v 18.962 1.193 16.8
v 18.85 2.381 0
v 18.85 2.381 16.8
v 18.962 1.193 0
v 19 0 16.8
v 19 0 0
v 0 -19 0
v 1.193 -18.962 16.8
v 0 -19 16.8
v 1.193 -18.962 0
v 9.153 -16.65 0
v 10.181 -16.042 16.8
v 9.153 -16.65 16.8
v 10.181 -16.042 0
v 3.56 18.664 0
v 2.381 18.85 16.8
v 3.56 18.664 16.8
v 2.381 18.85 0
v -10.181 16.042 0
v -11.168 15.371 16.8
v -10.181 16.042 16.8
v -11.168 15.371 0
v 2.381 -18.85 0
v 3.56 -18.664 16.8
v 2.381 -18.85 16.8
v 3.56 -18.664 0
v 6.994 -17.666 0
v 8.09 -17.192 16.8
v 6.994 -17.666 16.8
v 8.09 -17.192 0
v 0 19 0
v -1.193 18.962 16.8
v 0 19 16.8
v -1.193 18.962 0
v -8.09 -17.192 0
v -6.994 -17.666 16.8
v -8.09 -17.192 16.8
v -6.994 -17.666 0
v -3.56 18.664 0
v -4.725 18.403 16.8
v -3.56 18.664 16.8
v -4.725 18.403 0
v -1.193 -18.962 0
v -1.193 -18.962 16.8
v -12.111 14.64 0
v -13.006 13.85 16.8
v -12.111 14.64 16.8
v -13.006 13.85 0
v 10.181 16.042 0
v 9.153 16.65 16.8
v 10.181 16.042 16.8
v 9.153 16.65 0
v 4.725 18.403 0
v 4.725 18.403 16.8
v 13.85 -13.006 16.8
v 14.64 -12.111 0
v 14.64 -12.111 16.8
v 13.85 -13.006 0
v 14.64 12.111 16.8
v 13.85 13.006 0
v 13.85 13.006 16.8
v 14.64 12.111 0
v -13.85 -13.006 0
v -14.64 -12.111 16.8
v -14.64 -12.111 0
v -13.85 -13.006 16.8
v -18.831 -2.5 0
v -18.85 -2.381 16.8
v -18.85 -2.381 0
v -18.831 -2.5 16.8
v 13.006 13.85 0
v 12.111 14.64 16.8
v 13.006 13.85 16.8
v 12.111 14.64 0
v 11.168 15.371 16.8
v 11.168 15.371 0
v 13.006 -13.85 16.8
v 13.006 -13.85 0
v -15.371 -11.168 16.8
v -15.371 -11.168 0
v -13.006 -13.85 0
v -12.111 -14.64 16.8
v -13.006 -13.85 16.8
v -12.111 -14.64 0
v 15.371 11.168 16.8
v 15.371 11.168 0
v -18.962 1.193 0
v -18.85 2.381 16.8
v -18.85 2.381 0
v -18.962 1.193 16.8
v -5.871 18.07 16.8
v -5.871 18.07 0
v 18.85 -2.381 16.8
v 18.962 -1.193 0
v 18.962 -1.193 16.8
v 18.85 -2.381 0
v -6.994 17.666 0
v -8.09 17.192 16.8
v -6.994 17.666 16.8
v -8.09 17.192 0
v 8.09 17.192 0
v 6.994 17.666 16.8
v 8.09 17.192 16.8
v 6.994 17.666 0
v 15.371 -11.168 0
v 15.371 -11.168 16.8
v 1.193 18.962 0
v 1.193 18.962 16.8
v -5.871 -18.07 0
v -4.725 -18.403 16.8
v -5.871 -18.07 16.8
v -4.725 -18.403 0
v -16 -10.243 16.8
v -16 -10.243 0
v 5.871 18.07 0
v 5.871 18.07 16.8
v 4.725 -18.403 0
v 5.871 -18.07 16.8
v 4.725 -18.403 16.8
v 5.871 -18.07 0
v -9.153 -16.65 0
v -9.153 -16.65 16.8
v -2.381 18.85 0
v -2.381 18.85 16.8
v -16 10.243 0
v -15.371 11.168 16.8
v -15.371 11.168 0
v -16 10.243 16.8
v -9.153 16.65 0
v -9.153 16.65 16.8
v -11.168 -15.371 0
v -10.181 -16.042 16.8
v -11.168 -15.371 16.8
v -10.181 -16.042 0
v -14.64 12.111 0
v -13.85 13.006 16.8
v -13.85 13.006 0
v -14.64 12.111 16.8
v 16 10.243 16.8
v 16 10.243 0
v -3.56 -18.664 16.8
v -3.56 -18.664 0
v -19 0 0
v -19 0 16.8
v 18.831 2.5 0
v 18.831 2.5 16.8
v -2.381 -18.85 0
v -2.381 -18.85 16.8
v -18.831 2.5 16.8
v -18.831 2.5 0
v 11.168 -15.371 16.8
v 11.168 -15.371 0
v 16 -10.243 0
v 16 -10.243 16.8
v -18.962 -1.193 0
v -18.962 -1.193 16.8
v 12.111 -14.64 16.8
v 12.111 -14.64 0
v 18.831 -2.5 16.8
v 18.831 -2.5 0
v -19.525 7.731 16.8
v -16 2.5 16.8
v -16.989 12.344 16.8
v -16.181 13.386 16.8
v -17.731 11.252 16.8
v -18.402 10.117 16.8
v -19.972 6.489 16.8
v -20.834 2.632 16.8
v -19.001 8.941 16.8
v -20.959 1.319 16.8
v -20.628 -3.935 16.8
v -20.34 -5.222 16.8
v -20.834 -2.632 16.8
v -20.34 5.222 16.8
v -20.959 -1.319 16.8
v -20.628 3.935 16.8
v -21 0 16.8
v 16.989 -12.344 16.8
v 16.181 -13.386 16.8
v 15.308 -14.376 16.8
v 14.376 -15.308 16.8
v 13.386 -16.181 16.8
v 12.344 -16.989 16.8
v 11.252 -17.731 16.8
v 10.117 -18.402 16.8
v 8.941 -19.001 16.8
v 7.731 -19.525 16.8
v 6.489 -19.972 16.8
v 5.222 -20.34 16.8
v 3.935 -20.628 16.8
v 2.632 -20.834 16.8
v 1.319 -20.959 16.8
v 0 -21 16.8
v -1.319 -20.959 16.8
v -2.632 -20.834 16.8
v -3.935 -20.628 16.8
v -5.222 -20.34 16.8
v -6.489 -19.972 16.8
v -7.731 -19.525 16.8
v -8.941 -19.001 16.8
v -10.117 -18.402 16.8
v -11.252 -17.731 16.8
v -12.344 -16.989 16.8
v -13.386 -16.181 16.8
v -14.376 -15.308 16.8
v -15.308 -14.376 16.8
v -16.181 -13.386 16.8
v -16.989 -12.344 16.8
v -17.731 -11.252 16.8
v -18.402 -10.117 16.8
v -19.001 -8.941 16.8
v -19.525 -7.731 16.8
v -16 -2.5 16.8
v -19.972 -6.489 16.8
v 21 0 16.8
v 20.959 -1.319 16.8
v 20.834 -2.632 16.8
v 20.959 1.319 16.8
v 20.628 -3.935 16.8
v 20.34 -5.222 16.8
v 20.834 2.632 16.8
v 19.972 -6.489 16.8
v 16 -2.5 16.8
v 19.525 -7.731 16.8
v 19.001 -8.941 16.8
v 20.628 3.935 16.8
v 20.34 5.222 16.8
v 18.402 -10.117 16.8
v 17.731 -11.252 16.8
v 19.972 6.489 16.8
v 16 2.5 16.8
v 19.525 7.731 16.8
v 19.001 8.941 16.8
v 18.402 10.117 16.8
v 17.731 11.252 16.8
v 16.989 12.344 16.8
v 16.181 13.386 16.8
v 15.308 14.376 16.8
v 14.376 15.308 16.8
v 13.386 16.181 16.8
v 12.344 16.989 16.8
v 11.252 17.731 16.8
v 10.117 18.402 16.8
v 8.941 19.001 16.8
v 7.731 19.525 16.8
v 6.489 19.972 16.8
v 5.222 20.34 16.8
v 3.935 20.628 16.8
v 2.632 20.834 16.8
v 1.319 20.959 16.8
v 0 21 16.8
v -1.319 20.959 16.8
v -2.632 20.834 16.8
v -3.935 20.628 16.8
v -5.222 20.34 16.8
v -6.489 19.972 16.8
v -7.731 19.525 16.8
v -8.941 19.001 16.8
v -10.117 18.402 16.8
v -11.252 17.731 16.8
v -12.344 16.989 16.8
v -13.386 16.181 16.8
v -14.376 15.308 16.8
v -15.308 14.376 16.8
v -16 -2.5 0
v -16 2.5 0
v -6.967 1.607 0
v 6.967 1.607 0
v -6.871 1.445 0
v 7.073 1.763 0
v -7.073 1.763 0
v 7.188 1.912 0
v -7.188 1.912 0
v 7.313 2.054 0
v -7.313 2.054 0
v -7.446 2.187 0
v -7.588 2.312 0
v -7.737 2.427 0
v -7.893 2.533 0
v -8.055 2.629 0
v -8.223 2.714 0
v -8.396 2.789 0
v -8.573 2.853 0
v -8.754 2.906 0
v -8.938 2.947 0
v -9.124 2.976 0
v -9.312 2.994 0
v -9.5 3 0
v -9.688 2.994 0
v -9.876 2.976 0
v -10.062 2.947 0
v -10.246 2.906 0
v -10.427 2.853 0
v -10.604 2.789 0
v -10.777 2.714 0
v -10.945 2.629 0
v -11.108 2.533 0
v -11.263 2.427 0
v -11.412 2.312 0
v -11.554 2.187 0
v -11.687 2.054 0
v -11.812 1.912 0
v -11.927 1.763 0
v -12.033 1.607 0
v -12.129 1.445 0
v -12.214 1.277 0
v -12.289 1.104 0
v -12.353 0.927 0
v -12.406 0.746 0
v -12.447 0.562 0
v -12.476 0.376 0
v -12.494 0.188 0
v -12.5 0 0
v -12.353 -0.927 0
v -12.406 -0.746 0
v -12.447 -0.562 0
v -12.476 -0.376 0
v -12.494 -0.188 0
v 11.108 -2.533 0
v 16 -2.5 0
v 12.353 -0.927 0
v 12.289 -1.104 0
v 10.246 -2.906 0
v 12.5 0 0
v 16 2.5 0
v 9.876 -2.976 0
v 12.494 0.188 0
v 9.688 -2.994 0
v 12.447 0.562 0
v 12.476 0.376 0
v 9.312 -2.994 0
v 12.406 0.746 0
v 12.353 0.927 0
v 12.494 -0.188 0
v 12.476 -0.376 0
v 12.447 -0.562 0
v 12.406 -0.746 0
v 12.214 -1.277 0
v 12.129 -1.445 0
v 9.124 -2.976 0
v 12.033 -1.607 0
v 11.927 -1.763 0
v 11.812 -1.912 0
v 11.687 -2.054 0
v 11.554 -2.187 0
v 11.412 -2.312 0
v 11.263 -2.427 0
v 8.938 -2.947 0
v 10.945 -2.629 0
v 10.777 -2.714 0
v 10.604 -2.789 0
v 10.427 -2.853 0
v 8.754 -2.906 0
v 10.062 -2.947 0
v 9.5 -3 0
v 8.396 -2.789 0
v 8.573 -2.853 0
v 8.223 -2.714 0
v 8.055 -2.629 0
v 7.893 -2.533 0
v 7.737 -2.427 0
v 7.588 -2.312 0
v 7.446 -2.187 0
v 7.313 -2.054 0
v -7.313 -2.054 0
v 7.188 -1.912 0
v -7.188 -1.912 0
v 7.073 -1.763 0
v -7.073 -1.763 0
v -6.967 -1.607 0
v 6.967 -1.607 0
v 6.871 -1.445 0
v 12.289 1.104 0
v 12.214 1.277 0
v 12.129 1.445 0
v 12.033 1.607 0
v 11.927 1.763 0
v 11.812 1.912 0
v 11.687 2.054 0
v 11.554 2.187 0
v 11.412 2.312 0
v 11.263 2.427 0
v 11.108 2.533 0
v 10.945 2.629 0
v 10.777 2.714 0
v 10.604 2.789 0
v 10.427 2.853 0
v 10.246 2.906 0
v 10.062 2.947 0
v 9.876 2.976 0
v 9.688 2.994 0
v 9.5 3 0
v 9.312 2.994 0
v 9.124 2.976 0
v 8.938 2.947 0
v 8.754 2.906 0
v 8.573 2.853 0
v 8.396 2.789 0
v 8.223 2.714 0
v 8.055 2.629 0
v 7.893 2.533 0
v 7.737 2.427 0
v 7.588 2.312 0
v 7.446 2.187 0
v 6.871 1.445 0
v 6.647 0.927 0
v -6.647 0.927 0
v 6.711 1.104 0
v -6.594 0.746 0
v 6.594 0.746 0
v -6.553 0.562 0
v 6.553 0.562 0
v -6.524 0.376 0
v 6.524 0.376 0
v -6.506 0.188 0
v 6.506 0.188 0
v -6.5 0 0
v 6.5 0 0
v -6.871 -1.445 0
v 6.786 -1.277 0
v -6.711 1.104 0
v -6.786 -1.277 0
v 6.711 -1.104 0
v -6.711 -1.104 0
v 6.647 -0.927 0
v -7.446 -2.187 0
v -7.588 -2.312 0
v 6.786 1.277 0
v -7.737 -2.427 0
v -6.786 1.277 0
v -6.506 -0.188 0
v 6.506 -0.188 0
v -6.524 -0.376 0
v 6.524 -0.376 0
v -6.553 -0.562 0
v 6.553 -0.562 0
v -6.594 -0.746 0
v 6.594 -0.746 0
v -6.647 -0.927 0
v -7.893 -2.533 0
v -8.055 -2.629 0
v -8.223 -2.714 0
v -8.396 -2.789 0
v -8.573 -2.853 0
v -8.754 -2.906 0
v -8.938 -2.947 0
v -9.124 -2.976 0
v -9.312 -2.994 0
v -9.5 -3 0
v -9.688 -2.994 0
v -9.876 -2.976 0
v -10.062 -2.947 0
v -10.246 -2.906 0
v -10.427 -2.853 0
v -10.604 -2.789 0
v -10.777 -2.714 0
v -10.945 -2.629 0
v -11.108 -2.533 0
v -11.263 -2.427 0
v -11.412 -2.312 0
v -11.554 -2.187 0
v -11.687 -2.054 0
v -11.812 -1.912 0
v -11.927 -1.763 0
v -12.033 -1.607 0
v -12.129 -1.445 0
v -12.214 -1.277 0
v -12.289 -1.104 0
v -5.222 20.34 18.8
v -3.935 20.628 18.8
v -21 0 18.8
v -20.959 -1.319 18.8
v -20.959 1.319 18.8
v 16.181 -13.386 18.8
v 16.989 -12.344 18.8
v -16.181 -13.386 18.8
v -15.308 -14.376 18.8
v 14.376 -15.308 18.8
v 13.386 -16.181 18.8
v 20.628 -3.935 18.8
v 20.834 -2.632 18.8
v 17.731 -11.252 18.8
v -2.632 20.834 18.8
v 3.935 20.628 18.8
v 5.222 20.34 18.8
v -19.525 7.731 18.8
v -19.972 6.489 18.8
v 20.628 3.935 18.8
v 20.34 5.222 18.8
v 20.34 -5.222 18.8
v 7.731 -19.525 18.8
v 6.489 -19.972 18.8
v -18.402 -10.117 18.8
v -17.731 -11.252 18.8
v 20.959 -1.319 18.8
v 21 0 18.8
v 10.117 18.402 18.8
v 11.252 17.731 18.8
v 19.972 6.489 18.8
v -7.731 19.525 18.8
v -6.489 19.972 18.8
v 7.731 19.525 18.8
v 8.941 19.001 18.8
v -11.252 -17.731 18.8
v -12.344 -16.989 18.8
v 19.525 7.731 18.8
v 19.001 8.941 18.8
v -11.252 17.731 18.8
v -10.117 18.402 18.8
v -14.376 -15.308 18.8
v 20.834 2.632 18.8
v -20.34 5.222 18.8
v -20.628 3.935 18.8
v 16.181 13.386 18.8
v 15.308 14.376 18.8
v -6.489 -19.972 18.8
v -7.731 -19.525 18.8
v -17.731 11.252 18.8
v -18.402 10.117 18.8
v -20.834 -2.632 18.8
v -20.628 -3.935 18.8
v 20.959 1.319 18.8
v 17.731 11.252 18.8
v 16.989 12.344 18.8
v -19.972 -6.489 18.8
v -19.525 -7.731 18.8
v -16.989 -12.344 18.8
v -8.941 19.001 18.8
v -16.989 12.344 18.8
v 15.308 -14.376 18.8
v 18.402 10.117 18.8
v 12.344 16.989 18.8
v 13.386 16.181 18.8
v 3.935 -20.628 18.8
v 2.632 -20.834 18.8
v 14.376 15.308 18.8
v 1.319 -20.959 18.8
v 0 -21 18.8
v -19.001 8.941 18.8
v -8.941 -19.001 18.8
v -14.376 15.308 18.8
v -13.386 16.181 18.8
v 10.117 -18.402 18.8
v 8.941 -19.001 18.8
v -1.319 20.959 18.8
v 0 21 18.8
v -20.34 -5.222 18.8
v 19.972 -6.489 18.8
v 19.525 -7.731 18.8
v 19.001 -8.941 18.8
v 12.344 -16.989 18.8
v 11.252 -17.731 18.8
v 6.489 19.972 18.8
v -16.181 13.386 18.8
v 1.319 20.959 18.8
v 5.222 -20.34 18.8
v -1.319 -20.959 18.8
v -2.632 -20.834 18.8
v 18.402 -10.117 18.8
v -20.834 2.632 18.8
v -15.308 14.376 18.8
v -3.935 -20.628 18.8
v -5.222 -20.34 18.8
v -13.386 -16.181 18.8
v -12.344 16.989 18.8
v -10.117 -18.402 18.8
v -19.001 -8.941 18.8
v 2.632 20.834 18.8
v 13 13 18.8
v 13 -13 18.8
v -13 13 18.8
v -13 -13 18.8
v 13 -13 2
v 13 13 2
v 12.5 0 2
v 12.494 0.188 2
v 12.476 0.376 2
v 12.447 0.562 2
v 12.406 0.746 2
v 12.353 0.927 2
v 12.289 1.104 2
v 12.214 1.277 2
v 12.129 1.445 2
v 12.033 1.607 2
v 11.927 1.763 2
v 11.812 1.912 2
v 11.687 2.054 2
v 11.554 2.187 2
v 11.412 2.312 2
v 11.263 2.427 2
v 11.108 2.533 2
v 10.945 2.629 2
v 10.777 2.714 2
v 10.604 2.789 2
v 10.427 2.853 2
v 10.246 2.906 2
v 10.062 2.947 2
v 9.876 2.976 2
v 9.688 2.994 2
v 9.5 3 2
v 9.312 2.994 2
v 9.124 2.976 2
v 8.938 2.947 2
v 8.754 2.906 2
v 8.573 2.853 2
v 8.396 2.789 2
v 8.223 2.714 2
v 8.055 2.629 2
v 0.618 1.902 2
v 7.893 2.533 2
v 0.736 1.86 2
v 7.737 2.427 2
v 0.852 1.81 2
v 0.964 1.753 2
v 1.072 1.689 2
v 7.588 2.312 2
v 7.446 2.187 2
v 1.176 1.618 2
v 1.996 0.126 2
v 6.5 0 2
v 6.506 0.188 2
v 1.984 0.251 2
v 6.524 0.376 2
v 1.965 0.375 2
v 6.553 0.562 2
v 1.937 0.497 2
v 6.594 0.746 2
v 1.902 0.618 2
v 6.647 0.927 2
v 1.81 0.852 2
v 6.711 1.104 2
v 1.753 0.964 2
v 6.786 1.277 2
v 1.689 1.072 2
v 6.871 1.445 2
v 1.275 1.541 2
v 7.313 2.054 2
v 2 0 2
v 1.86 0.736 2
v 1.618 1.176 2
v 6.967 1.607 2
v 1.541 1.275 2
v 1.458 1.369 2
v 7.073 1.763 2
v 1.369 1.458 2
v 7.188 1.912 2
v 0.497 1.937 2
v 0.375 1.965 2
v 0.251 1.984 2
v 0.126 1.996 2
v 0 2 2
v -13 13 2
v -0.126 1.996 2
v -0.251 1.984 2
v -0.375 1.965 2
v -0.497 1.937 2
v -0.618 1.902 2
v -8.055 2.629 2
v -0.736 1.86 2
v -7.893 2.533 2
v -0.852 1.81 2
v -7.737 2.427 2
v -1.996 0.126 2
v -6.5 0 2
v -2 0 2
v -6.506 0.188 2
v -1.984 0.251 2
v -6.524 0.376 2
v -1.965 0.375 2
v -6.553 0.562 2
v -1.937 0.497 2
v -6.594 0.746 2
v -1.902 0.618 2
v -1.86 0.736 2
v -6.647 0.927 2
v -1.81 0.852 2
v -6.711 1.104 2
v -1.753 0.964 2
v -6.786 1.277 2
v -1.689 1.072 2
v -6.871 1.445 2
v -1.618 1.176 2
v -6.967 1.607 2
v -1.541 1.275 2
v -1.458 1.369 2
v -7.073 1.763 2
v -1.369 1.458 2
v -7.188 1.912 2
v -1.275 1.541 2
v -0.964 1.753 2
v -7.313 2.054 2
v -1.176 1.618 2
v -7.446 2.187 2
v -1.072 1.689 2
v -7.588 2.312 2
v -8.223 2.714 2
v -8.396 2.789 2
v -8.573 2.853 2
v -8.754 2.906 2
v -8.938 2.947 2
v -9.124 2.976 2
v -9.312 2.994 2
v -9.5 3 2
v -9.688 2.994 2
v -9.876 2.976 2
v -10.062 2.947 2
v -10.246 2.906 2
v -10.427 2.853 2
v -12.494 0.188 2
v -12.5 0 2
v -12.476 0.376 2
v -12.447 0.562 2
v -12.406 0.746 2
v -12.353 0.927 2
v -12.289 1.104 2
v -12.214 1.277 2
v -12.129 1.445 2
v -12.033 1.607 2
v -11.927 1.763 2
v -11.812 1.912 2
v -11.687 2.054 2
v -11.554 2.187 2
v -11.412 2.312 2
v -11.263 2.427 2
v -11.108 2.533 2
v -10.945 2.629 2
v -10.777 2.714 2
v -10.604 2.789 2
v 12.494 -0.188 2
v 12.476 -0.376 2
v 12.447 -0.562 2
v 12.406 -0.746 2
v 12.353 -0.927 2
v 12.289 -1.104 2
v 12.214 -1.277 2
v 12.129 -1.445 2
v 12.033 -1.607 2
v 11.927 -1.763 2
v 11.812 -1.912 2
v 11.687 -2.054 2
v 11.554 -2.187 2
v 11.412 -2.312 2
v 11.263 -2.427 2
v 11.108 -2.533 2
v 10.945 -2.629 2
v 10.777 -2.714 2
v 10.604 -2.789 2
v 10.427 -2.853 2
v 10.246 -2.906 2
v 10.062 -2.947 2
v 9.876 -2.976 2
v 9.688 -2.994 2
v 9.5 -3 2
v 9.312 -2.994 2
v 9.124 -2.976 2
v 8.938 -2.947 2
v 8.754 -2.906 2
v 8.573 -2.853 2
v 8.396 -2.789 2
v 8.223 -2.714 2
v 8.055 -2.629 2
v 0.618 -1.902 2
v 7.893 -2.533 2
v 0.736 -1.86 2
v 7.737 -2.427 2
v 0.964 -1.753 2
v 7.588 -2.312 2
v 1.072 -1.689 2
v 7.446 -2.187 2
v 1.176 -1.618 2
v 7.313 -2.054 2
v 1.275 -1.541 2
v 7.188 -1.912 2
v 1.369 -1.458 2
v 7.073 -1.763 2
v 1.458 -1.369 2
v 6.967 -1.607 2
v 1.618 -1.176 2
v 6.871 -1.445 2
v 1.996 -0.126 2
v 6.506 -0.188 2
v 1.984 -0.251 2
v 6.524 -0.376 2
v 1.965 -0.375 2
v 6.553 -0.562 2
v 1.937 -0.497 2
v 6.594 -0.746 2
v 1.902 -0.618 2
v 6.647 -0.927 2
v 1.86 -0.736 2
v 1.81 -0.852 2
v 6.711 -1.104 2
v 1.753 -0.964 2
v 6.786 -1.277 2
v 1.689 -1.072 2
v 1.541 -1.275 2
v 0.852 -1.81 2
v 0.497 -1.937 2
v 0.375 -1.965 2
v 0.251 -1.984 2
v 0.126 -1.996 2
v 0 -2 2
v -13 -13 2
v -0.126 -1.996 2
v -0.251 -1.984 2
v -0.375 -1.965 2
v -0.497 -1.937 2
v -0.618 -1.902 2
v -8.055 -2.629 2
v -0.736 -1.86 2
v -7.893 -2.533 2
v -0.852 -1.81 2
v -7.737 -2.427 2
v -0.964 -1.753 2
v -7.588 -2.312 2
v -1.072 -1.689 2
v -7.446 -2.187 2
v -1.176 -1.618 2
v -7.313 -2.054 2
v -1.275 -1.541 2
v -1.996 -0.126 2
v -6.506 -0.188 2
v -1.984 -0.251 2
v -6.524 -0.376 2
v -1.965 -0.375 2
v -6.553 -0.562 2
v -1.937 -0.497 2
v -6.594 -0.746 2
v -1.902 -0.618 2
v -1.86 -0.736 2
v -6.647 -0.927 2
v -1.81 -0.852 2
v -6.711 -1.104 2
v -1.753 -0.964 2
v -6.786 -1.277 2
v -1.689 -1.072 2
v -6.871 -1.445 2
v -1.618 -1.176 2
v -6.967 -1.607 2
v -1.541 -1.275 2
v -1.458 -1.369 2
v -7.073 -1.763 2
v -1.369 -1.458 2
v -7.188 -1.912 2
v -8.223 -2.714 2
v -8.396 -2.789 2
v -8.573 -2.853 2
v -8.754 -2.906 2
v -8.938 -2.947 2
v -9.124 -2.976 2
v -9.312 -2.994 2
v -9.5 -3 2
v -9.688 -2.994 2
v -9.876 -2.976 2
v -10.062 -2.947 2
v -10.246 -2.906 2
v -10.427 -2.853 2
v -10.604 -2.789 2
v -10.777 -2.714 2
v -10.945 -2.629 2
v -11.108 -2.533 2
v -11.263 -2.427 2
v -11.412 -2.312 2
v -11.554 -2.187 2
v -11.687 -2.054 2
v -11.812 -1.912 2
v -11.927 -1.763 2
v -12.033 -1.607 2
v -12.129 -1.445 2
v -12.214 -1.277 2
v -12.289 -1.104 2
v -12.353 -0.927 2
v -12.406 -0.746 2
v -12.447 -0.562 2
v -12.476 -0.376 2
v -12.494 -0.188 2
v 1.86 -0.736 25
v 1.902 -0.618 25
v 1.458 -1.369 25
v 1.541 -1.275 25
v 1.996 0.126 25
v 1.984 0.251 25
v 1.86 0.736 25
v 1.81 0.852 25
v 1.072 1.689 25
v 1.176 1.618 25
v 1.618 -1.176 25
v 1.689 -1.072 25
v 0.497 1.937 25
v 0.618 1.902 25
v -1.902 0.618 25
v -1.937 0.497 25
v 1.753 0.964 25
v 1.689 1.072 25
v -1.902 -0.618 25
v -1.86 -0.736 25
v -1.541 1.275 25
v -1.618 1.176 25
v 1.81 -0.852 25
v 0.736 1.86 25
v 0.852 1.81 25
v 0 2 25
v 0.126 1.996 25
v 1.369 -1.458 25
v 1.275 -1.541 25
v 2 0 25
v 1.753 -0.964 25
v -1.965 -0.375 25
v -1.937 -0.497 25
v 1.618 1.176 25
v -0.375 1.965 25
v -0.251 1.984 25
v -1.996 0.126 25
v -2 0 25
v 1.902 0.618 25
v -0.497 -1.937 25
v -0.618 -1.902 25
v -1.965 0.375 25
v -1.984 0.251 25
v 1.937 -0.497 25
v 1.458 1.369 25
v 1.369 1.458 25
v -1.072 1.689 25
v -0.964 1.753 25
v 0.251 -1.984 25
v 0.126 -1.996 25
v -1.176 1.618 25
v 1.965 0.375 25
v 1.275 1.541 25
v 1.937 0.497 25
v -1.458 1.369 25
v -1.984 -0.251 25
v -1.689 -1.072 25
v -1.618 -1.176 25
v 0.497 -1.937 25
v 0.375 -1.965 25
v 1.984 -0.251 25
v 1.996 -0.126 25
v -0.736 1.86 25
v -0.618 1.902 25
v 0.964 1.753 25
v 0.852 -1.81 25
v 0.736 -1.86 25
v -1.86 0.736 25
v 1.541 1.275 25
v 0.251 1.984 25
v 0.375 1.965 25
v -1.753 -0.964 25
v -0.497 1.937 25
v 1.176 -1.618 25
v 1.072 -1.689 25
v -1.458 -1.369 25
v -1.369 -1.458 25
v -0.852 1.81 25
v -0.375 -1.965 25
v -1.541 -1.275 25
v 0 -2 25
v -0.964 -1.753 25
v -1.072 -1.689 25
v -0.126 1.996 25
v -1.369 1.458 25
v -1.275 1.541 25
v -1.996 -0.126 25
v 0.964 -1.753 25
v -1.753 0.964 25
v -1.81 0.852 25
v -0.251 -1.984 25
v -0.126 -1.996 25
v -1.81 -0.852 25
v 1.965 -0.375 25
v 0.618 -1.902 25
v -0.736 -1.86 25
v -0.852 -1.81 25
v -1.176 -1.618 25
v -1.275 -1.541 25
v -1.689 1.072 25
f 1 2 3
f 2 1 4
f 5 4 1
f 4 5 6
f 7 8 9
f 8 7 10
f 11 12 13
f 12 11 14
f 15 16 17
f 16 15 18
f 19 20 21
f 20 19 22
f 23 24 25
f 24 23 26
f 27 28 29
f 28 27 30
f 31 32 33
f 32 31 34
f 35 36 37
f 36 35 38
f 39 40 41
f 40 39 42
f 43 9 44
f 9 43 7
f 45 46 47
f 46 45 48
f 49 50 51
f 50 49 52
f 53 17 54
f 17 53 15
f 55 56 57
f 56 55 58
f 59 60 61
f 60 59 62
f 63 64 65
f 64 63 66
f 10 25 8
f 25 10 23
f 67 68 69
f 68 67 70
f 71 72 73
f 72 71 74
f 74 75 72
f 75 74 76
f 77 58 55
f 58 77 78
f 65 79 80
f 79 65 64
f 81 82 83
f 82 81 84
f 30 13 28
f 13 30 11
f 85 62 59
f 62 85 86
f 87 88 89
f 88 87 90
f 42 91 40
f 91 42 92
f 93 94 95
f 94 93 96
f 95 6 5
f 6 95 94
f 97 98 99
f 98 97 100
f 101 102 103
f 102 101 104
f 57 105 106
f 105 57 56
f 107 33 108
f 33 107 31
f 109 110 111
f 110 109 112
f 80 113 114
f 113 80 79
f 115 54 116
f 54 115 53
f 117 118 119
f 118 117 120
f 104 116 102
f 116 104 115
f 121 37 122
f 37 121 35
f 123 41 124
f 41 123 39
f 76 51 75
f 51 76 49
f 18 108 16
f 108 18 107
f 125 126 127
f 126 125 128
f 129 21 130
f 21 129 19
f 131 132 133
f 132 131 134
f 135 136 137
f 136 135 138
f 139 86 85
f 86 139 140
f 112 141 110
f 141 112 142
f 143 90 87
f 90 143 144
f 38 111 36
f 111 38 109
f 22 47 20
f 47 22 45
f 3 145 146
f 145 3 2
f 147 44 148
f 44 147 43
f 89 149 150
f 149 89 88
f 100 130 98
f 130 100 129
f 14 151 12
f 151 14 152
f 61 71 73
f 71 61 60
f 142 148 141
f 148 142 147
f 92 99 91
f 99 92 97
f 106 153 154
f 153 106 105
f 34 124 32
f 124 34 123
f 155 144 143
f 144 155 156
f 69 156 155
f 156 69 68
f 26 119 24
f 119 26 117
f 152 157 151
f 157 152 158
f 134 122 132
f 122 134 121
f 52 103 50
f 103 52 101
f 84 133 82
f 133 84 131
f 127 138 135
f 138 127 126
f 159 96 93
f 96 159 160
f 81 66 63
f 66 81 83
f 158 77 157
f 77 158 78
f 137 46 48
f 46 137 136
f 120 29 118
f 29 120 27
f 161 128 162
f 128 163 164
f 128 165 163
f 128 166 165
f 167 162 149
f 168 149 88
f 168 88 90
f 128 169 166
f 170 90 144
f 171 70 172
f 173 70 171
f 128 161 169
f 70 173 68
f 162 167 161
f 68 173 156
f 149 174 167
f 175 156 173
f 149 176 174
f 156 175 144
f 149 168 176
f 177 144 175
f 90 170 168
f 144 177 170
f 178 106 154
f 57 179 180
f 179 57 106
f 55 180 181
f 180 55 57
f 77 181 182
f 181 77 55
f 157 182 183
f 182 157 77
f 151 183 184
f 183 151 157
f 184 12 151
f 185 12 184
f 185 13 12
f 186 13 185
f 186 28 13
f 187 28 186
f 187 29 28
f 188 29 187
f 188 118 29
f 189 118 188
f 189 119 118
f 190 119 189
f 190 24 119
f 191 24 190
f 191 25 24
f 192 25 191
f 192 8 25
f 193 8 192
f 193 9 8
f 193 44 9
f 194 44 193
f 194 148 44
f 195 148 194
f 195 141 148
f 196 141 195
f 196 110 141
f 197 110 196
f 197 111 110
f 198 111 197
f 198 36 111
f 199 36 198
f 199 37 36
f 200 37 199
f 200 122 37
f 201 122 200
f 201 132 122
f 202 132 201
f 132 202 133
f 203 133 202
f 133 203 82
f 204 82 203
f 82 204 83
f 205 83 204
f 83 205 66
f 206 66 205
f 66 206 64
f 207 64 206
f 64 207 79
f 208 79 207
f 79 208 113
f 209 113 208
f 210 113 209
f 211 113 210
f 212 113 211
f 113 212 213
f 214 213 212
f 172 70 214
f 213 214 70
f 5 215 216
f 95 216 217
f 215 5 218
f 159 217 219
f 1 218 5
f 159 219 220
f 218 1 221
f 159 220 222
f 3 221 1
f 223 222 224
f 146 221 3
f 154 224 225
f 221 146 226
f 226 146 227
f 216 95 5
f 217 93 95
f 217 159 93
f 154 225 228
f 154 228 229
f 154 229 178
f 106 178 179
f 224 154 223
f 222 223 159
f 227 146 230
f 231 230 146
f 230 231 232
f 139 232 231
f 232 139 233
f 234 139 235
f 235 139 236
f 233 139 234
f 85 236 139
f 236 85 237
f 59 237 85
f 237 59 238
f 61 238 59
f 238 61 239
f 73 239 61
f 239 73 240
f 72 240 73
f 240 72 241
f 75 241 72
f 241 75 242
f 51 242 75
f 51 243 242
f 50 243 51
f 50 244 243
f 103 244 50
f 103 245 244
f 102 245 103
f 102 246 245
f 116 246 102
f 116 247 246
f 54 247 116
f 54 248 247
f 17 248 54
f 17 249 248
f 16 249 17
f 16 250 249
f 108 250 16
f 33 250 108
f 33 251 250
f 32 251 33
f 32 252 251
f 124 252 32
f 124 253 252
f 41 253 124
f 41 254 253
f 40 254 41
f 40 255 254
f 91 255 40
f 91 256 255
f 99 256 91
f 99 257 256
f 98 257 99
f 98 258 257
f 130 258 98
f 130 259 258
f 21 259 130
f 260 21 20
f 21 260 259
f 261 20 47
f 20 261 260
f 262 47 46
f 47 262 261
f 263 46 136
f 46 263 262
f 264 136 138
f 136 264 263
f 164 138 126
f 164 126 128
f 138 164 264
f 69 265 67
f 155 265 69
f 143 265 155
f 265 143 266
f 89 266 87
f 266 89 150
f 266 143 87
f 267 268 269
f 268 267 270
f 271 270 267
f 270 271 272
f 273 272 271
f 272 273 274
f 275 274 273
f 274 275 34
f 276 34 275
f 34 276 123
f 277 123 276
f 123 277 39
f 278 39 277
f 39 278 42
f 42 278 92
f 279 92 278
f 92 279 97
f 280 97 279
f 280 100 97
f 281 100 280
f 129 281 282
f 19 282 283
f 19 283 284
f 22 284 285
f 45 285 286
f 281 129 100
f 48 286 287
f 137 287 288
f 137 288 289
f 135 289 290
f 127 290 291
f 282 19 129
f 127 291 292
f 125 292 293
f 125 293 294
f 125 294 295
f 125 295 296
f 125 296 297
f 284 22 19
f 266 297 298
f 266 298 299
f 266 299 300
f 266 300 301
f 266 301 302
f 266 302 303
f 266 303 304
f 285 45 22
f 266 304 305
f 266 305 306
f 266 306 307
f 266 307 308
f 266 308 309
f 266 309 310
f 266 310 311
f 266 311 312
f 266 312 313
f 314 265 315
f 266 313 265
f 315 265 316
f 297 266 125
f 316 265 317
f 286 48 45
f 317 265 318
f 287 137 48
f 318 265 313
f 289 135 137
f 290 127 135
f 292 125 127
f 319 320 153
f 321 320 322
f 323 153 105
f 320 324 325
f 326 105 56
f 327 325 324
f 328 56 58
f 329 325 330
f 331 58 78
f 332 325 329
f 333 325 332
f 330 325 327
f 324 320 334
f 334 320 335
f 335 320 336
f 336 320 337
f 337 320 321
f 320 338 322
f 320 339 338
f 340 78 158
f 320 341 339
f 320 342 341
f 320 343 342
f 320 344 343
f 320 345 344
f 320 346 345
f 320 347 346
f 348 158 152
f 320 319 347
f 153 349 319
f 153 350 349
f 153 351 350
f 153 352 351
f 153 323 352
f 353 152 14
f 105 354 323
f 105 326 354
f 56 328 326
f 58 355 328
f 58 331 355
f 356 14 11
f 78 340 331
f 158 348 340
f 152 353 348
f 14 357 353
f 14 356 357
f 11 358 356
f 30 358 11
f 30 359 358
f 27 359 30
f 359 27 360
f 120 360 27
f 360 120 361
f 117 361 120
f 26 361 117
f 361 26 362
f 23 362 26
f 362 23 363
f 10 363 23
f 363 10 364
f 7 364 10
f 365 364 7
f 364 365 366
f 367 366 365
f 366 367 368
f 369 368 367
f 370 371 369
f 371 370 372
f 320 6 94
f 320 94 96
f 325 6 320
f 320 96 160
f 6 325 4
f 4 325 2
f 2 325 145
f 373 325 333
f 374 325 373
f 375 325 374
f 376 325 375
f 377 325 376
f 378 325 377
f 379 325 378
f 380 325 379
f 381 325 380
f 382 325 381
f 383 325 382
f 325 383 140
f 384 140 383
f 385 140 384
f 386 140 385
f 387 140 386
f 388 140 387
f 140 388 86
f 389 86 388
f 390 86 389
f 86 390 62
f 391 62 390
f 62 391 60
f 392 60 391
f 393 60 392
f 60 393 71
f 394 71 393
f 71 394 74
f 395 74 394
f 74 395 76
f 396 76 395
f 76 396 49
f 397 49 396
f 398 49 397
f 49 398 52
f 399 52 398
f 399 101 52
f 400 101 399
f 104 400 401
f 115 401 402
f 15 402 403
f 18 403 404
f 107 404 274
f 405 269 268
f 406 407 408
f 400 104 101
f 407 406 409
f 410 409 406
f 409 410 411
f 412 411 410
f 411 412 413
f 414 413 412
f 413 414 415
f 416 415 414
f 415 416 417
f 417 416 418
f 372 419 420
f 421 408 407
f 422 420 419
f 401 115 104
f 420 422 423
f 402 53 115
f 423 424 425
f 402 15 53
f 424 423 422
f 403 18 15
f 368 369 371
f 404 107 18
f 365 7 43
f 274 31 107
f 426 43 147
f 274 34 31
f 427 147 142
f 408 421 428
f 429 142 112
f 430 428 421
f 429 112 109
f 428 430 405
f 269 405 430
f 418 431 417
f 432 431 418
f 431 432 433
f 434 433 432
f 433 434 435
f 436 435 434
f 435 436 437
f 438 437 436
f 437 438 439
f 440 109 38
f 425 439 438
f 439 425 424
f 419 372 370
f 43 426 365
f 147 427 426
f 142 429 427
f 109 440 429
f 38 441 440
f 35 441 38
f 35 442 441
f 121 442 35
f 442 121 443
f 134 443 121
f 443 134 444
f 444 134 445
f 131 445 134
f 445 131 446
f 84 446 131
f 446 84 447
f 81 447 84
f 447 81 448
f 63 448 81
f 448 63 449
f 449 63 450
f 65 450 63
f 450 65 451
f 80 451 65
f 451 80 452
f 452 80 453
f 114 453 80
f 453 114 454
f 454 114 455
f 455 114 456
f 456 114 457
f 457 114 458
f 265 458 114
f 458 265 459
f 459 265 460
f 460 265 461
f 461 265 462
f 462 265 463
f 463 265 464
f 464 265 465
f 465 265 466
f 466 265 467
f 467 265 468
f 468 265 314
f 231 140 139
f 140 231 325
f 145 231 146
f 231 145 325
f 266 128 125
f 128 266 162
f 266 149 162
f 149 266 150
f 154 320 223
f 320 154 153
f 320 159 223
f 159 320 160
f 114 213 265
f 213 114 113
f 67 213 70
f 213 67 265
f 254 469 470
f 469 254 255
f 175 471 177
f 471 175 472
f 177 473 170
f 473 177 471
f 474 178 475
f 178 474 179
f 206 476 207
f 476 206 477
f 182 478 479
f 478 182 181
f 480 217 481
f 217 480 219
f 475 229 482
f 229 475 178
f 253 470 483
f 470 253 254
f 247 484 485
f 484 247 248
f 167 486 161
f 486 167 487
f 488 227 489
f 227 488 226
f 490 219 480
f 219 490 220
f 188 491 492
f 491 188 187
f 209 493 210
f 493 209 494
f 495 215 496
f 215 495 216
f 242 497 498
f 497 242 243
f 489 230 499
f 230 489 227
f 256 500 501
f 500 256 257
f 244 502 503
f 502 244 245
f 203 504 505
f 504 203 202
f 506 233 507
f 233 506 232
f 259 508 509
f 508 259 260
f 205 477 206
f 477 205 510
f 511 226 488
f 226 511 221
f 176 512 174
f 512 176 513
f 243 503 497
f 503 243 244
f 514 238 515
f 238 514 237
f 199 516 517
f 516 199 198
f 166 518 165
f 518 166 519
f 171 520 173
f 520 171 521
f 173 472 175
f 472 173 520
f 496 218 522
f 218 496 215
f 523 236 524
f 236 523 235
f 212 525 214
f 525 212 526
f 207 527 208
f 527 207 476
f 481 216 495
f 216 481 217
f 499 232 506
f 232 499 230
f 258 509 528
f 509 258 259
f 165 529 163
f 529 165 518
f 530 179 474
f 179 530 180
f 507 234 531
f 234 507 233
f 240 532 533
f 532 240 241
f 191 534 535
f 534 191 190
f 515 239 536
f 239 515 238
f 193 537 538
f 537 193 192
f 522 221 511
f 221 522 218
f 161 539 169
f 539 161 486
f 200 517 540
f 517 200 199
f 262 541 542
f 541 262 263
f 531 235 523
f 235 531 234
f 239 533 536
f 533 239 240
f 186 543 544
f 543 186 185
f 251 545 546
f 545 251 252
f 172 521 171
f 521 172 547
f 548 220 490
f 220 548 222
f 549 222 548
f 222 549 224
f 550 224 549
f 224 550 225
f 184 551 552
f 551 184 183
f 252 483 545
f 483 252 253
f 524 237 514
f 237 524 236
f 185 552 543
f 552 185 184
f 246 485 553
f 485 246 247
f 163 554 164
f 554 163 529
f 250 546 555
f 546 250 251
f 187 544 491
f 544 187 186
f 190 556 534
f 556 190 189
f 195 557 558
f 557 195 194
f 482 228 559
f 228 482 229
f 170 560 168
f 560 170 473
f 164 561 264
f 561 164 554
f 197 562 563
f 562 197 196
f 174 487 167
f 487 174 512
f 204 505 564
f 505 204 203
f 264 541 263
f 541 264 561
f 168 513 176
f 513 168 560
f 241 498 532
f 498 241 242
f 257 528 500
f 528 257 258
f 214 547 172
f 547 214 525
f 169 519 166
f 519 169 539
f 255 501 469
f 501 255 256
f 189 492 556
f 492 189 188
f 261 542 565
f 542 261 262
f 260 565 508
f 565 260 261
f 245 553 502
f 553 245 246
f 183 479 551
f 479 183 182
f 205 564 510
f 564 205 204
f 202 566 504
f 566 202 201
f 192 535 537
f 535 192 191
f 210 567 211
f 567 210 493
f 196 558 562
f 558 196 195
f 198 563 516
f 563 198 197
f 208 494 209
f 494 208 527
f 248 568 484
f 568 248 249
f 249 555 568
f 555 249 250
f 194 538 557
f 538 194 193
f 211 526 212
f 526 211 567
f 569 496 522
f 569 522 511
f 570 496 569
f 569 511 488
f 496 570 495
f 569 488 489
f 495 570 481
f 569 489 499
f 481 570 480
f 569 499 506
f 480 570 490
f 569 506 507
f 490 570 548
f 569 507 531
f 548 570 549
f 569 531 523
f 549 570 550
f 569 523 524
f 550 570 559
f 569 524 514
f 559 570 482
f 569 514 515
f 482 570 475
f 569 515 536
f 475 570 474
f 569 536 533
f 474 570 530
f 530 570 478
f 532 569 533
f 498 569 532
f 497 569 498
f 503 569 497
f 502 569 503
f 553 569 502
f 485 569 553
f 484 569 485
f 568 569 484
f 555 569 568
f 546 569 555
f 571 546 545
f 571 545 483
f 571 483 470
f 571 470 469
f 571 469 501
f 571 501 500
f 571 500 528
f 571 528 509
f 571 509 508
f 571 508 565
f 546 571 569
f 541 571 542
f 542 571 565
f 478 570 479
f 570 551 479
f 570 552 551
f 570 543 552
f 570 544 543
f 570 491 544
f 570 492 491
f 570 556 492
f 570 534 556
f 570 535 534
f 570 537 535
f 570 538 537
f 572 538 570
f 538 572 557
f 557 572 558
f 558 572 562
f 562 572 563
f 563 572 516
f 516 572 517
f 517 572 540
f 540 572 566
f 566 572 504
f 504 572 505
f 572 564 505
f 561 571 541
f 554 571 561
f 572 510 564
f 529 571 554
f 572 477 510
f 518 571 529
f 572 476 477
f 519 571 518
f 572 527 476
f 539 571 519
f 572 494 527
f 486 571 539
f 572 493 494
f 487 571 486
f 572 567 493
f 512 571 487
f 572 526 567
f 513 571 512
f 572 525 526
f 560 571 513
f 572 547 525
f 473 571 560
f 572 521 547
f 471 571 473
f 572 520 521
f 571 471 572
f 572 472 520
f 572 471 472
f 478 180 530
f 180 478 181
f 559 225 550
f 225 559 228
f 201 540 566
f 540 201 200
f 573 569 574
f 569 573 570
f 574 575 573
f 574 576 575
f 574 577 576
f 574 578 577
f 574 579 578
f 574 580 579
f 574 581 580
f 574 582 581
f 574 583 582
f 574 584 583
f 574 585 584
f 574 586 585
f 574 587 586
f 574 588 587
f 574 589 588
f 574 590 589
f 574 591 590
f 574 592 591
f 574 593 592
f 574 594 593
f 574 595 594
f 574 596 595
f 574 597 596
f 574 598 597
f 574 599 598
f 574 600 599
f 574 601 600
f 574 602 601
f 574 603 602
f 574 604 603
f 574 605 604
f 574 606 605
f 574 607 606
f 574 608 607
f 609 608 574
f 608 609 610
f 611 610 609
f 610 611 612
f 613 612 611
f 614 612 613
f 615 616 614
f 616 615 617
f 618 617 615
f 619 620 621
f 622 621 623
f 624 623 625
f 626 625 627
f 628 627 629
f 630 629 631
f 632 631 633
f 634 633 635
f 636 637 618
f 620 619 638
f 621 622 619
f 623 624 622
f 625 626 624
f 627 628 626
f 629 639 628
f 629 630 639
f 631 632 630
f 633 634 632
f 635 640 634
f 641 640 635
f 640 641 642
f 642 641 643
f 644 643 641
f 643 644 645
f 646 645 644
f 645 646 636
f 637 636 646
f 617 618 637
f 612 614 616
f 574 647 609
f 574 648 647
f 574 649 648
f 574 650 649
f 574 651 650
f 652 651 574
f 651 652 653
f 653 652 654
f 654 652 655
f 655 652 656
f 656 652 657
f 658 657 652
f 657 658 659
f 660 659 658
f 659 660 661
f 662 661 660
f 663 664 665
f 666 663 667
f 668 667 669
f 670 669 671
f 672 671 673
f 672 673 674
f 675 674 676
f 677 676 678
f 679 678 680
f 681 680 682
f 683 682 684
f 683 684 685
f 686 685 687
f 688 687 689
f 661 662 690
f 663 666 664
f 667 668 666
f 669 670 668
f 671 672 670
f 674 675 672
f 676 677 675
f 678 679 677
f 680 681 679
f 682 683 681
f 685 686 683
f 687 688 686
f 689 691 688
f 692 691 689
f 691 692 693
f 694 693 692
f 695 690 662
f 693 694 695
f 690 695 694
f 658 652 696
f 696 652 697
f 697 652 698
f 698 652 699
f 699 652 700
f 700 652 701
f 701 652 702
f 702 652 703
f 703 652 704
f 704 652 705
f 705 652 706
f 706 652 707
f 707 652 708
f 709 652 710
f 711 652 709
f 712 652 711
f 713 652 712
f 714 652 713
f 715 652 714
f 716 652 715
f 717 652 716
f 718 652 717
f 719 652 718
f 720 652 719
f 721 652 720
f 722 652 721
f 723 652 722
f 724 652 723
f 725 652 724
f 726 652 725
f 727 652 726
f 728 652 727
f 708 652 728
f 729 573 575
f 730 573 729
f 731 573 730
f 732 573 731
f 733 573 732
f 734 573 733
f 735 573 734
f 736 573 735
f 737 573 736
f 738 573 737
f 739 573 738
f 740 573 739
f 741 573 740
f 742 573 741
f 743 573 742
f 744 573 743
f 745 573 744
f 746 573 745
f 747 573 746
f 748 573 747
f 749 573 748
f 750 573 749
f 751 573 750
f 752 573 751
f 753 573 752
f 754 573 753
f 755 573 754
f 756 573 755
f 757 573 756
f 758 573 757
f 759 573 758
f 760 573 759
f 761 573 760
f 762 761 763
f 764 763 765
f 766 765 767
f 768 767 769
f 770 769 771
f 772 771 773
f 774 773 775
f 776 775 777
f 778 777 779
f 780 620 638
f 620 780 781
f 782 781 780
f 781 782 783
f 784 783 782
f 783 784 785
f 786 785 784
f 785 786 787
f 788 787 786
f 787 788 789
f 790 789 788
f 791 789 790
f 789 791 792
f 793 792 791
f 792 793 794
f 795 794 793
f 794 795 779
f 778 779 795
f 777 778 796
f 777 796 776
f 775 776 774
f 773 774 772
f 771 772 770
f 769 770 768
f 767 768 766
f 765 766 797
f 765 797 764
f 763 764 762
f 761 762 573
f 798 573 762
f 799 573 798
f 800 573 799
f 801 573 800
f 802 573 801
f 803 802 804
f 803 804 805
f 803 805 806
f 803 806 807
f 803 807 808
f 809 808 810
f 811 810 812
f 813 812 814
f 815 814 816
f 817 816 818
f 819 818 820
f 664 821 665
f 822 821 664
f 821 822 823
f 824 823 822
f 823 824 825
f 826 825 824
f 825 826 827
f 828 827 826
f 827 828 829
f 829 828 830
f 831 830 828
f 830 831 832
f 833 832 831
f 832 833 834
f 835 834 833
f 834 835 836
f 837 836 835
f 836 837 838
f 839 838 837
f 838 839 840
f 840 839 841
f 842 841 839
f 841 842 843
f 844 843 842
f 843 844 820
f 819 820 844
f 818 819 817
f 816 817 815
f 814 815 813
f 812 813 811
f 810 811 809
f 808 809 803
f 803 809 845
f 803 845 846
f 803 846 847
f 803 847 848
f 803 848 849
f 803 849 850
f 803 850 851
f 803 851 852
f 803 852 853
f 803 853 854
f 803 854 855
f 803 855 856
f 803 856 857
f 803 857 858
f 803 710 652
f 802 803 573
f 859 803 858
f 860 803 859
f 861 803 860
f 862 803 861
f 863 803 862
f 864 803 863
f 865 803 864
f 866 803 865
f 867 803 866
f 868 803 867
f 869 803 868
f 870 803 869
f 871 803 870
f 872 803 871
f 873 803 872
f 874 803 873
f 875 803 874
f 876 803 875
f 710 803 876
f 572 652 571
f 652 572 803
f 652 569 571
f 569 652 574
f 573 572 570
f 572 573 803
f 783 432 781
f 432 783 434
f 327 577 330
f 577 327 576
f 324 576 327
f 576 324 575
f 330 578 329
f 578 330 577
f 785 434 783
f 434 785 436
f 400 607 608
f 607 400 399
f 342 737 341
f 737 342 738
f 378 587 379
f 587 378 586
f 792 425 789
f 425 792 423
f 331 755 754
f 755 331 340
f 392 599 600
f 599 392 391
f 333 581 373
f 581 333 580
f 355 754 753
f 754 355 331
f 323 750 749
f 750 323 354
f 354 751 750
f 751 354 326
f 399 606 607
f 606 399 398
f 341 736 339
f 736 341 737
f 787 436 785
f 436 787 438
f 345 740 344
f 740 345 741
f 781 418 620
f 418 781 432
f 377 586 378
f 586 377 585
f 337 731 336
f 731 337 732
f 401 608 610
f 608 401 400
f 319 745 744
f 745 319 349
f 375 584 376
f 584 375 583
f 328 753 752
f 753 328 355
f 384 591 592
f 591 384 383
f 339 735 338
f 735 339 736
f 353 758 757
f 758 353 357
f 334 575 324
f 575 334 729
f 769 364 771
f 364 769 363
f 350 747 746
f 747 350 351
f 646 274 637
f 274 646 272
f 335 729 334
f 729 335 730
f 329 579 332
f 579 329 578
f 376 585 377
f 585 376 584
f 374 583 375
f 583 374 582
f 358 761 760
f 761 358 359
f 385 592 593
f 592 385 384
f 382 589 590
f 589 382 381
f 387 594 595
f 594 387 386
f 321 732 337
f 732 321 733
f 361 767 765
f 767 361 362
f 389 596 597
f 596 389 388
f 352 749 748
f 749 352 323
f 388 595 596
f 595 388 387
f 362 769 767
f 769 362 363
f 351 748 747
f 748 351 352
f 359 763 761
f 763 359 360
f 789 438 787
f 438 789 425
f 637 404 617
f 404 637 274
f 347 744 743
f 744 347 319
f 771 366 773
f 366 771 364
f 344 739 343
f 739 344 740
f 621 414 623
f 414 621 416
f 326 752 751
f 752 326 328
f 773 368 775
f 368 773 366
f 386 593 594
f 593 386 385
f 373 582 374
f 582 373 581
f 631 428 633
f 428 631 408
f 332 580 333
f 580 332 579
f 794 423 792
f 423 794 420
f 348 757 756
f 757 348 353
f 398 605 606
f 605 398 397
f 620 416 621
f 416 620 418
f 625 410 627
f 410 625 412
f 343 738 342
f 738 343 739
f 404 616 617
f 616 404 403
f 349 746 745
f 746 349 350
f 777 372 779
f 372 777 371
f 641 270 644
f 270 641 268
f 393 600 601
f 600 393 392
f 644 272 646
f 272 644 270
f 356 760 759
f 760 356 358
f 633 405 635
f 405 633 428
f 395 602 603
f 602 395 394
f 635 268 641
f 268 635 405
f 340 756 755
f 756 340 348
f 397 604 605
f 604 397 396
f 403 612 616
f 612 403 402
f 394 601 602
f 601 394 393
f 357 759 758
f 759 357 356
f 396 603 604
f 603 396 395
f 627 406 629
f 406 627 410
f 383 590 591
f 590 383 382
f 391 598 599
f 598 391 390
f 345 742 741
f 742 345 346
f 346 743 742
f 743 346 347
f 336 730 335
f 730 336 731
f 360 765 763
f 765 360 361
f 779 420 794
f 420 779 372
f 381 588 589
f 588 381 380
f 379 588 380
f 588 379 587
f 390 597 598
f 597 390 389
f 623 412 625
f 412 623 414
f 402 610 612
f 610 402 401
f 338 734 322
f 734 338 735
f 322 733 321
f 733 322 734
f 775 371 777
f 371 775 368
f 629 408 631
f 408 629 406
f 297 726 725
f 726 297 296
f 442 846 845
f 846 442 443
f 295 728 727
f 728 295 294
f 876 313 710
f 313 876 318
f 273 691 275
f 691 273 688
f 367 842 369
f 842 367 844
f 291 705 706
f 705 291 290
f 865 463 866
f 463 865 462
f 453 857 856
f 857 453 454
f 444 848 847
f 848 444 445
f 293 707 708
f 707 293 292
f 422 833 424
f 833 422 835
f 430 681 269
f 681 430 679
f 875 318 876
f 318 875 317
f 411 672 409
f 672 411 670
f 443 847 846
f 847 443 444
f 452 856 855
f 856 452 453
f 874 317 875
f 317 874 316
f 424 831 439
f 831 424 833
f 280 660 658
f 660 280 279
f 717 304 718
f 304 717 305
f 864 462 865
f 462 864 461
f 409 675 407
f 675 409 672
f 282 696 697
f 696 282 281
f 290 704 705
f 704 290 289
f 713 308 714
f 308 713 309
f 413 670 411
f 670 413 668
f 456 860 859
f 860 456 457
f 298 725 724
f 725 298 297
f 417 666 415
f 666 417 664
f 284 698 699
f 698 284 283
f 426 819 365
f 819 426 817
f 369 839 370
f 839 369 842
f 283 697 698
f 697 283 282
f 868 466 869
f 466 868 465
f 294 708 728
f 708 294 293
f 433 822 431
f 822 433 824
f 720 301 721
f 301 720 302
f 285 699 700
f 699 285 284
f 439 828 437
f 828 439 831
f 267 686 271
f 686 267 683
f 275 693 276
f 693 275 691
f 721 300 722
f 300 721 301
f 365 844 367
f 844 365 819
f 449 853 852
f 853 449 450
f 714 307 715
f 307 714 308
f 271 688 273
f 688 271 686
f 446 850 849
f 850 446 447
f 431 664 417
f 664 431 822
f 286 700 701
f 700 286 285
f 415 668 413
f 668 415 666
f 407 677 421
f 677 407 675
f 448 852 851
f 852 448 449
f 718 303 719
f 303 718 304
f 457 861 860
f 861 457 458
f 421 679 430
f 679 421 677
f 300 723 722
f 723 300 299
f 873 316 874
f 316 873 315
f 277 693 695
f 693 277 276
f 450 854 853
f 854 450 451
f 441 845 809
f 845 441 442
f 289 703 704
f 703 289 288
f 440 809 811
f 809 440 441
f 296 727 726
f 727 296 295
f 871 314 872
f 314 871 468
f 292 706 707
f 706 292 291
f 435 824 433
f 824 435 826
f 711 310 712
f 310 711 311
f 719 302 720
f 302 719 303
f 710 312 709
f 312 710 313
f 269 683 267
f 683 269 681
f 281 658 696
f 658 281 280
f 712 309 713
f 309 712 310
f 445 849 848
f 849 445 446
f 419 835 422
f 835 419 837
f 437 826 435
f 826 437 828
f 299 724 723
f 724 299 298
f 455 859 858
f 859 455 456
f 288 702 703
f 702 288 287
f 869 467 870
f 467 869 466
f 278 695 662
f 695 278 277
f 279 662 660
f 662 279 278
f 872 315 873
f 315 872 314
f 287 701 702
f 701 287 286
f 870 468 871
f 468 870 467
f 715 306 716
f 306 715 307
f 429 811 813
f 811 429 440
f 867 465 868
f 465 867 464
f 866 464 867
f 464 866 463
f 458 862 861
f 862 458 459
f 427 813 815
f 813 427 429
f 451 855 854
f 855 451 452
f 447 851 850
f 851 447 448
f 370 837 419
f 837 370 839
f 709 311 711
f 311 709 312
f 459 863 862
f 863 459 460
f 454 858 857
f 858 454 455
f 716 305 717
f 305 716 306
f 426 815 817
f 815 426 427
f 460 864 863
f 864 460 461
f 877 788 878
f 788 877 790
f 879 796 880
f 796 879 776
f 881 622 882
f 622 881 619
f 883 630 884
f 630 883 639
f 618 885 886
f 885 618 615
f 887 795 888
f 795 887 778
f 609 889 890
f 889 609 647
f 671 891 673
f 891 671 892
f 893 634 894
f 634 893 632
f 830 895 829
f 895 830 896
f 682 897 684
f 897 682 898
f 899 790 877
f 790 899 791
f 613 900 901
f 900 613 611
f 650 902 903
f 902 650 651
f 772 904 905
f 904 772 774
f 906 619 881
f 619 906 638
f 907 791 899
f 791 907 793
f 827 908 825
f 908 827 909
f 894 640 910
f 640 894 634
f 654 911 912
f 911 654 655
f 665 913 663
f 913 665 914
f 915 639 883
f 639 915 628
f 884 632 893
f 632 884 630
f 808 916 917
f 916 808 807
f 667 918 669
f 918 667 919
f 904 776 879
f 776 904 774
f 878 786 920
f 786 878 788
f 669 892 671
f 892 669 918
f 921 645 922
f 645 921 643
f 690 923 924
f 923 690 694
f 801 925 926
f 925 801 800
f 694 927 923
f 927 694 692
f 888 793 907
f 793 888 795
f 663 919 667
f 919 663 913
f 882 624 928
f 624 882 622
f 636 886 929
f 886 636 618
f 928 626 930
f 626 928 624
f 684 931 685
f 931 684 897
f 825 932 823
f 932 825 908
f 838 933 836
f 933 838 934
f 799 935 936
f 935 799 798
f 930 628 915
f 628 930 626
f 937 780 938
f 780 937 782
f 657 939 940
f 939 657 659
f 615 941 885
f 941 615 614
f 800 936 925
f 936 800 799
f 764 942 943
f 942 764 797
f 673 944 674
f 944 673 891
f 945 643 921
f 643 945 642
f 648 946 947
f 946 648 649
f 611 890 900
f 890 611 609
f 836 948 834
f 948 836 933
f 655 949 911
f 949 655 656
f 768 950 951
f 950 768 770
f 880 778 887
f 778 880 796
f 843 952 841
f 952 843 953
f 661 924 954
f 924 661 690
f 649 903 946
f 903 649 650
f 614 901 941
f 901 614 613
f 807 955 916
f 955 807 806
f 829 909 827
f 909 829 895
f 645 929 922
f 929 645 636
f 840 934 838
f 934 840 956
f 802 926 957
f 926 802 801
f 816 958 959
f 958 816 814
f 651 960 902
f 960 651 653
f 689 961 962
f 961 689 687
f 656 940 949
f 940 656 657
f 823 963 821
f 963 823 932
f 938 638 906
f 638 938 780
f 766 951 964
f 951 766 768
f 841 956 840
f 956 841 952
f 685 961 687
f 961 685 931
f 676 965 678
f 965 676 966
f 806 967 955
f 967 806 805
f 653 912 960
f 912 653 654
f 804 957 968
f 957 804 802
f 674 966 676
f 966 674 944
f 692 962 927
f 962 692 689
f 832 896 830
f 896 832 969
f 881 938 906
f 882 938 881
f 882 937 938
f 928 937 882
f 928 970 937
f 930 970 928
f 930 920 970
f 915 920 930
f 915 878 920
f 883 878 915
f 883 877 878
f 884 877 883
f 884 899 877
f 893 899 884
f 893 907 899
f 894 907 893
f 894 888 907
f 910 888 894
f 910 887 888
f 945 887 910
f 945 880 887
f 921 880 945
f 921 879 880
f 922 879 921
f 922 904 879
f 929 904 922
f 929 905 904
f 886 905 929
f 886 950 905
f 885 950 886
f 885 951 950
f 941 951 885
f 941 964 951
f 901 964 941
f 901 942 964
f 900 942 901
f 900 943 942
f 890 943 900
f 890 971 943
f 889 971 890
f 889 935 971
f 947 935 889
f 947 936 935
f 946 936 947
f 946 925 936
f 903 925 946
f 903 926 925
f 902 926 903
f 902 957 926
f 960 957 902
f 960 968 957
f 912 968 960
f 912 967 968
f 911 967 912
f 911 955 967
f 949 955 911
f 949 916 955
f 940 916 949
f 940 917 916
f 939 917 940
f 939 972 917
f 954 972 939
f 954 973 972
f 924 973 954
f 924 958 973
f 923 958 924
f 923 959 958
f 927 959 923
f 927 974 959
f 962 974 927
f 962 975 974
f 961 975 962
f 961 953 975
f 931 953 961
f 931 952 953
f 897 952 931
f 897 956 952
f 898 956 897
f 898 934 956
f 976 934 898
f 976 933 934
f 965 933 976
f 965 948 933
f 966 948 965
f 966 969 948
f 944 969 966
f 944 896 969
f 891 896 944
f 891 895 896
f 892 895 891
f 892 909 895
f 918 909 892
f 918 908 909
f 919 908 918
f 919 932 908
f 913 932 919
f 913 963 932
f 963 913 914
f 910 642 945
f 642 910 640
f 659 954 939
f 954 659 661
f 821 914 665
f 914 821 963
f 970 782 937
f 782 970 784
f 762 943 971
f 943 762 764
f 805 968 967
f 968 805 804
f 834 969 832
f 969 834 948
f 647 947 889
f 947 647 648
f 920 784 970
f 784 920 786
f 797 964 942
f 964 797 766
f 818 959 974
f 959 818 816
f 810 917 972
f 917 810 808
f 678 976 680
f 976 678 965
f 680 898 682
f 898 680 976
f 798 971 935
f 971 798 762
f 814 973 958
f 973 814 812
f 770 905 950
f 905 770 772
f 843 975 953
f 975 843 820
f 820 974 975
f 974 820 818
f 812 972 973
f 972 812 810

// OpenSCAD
// Shuko plug
$fn = 100;
height = 19; //total height to top rim
plugTopD = 42; //diameter of top cover
plugTopH = 2; //2mm rim height of top cover
plugTopOff = 16.8 ; //from bottom to top rim
diffWiggle = .2;
plugBottomD = 38;
plugBottomH = plugTopOff;
plugSideCutH = 3;
plugSideCutW = 5;
zdiff = [0,0,-diffWiggle/2];
cutCube = 8;
cubeXY = plugBottomD-(plugSideCutH+9);
cubeFloor = 2;
pinR = 9.5 ; //The distance from the center that the pins should be at
//plug inset
difference () {
    union() {
        difference() {
            cylinder(h=plugBottomH,d=plugBottomD);
                cutOffTR=[(plugBottomD/2)-plugSideCutH,plugSideCutW/2,0];
                cutOffTL=[-((plugBottomD/2)+plugSideCutH)+plugSideCutH,plugSideCutW/2,0];
                cutOffBR=[(plugBottomD/2)-plugSideCutH,-(plugSideCutW/2)-cutCube,0];
                cutOffBL=[-((plugBottomD/2)+plugSideCutH)+plugSideCutH,-plugSideCutW/2-cutCube,0];
                cutCube=[plugSideCutH,cutCube,plugBottomH+diffWiggle];
            translate(cutOffTR+zdiff)cube(cutCube);
            translate(cutOffTL+zdiff)cube(cutCube);
            translate(cutOffBR+zdiff)cube(cutCube);
            translate(cutOffBL+zdiff)cube(cutCube);
        }
        translate([0,0,plugTopOff]) cylinder(h=plugTopH, d=plugTopD);
    }
    //cube cutout
    translate([0,0,height/2+cubeFloor])cube([cubeXY,cubeXY,height],center=true);
    //plug holes for cabling where pins should be
    translate([pinR,0,0])translate(zdiff) cylinder(h=cubeFloor+diffWiggle,d=6);
    translate([-pinR,0,0])translate(zdiff) cylinder(h=cubeFloor+diffWiggle,d=6);
}


//handle to extract test
//REMOVE after testing
cylinder(h=25,d=4);
